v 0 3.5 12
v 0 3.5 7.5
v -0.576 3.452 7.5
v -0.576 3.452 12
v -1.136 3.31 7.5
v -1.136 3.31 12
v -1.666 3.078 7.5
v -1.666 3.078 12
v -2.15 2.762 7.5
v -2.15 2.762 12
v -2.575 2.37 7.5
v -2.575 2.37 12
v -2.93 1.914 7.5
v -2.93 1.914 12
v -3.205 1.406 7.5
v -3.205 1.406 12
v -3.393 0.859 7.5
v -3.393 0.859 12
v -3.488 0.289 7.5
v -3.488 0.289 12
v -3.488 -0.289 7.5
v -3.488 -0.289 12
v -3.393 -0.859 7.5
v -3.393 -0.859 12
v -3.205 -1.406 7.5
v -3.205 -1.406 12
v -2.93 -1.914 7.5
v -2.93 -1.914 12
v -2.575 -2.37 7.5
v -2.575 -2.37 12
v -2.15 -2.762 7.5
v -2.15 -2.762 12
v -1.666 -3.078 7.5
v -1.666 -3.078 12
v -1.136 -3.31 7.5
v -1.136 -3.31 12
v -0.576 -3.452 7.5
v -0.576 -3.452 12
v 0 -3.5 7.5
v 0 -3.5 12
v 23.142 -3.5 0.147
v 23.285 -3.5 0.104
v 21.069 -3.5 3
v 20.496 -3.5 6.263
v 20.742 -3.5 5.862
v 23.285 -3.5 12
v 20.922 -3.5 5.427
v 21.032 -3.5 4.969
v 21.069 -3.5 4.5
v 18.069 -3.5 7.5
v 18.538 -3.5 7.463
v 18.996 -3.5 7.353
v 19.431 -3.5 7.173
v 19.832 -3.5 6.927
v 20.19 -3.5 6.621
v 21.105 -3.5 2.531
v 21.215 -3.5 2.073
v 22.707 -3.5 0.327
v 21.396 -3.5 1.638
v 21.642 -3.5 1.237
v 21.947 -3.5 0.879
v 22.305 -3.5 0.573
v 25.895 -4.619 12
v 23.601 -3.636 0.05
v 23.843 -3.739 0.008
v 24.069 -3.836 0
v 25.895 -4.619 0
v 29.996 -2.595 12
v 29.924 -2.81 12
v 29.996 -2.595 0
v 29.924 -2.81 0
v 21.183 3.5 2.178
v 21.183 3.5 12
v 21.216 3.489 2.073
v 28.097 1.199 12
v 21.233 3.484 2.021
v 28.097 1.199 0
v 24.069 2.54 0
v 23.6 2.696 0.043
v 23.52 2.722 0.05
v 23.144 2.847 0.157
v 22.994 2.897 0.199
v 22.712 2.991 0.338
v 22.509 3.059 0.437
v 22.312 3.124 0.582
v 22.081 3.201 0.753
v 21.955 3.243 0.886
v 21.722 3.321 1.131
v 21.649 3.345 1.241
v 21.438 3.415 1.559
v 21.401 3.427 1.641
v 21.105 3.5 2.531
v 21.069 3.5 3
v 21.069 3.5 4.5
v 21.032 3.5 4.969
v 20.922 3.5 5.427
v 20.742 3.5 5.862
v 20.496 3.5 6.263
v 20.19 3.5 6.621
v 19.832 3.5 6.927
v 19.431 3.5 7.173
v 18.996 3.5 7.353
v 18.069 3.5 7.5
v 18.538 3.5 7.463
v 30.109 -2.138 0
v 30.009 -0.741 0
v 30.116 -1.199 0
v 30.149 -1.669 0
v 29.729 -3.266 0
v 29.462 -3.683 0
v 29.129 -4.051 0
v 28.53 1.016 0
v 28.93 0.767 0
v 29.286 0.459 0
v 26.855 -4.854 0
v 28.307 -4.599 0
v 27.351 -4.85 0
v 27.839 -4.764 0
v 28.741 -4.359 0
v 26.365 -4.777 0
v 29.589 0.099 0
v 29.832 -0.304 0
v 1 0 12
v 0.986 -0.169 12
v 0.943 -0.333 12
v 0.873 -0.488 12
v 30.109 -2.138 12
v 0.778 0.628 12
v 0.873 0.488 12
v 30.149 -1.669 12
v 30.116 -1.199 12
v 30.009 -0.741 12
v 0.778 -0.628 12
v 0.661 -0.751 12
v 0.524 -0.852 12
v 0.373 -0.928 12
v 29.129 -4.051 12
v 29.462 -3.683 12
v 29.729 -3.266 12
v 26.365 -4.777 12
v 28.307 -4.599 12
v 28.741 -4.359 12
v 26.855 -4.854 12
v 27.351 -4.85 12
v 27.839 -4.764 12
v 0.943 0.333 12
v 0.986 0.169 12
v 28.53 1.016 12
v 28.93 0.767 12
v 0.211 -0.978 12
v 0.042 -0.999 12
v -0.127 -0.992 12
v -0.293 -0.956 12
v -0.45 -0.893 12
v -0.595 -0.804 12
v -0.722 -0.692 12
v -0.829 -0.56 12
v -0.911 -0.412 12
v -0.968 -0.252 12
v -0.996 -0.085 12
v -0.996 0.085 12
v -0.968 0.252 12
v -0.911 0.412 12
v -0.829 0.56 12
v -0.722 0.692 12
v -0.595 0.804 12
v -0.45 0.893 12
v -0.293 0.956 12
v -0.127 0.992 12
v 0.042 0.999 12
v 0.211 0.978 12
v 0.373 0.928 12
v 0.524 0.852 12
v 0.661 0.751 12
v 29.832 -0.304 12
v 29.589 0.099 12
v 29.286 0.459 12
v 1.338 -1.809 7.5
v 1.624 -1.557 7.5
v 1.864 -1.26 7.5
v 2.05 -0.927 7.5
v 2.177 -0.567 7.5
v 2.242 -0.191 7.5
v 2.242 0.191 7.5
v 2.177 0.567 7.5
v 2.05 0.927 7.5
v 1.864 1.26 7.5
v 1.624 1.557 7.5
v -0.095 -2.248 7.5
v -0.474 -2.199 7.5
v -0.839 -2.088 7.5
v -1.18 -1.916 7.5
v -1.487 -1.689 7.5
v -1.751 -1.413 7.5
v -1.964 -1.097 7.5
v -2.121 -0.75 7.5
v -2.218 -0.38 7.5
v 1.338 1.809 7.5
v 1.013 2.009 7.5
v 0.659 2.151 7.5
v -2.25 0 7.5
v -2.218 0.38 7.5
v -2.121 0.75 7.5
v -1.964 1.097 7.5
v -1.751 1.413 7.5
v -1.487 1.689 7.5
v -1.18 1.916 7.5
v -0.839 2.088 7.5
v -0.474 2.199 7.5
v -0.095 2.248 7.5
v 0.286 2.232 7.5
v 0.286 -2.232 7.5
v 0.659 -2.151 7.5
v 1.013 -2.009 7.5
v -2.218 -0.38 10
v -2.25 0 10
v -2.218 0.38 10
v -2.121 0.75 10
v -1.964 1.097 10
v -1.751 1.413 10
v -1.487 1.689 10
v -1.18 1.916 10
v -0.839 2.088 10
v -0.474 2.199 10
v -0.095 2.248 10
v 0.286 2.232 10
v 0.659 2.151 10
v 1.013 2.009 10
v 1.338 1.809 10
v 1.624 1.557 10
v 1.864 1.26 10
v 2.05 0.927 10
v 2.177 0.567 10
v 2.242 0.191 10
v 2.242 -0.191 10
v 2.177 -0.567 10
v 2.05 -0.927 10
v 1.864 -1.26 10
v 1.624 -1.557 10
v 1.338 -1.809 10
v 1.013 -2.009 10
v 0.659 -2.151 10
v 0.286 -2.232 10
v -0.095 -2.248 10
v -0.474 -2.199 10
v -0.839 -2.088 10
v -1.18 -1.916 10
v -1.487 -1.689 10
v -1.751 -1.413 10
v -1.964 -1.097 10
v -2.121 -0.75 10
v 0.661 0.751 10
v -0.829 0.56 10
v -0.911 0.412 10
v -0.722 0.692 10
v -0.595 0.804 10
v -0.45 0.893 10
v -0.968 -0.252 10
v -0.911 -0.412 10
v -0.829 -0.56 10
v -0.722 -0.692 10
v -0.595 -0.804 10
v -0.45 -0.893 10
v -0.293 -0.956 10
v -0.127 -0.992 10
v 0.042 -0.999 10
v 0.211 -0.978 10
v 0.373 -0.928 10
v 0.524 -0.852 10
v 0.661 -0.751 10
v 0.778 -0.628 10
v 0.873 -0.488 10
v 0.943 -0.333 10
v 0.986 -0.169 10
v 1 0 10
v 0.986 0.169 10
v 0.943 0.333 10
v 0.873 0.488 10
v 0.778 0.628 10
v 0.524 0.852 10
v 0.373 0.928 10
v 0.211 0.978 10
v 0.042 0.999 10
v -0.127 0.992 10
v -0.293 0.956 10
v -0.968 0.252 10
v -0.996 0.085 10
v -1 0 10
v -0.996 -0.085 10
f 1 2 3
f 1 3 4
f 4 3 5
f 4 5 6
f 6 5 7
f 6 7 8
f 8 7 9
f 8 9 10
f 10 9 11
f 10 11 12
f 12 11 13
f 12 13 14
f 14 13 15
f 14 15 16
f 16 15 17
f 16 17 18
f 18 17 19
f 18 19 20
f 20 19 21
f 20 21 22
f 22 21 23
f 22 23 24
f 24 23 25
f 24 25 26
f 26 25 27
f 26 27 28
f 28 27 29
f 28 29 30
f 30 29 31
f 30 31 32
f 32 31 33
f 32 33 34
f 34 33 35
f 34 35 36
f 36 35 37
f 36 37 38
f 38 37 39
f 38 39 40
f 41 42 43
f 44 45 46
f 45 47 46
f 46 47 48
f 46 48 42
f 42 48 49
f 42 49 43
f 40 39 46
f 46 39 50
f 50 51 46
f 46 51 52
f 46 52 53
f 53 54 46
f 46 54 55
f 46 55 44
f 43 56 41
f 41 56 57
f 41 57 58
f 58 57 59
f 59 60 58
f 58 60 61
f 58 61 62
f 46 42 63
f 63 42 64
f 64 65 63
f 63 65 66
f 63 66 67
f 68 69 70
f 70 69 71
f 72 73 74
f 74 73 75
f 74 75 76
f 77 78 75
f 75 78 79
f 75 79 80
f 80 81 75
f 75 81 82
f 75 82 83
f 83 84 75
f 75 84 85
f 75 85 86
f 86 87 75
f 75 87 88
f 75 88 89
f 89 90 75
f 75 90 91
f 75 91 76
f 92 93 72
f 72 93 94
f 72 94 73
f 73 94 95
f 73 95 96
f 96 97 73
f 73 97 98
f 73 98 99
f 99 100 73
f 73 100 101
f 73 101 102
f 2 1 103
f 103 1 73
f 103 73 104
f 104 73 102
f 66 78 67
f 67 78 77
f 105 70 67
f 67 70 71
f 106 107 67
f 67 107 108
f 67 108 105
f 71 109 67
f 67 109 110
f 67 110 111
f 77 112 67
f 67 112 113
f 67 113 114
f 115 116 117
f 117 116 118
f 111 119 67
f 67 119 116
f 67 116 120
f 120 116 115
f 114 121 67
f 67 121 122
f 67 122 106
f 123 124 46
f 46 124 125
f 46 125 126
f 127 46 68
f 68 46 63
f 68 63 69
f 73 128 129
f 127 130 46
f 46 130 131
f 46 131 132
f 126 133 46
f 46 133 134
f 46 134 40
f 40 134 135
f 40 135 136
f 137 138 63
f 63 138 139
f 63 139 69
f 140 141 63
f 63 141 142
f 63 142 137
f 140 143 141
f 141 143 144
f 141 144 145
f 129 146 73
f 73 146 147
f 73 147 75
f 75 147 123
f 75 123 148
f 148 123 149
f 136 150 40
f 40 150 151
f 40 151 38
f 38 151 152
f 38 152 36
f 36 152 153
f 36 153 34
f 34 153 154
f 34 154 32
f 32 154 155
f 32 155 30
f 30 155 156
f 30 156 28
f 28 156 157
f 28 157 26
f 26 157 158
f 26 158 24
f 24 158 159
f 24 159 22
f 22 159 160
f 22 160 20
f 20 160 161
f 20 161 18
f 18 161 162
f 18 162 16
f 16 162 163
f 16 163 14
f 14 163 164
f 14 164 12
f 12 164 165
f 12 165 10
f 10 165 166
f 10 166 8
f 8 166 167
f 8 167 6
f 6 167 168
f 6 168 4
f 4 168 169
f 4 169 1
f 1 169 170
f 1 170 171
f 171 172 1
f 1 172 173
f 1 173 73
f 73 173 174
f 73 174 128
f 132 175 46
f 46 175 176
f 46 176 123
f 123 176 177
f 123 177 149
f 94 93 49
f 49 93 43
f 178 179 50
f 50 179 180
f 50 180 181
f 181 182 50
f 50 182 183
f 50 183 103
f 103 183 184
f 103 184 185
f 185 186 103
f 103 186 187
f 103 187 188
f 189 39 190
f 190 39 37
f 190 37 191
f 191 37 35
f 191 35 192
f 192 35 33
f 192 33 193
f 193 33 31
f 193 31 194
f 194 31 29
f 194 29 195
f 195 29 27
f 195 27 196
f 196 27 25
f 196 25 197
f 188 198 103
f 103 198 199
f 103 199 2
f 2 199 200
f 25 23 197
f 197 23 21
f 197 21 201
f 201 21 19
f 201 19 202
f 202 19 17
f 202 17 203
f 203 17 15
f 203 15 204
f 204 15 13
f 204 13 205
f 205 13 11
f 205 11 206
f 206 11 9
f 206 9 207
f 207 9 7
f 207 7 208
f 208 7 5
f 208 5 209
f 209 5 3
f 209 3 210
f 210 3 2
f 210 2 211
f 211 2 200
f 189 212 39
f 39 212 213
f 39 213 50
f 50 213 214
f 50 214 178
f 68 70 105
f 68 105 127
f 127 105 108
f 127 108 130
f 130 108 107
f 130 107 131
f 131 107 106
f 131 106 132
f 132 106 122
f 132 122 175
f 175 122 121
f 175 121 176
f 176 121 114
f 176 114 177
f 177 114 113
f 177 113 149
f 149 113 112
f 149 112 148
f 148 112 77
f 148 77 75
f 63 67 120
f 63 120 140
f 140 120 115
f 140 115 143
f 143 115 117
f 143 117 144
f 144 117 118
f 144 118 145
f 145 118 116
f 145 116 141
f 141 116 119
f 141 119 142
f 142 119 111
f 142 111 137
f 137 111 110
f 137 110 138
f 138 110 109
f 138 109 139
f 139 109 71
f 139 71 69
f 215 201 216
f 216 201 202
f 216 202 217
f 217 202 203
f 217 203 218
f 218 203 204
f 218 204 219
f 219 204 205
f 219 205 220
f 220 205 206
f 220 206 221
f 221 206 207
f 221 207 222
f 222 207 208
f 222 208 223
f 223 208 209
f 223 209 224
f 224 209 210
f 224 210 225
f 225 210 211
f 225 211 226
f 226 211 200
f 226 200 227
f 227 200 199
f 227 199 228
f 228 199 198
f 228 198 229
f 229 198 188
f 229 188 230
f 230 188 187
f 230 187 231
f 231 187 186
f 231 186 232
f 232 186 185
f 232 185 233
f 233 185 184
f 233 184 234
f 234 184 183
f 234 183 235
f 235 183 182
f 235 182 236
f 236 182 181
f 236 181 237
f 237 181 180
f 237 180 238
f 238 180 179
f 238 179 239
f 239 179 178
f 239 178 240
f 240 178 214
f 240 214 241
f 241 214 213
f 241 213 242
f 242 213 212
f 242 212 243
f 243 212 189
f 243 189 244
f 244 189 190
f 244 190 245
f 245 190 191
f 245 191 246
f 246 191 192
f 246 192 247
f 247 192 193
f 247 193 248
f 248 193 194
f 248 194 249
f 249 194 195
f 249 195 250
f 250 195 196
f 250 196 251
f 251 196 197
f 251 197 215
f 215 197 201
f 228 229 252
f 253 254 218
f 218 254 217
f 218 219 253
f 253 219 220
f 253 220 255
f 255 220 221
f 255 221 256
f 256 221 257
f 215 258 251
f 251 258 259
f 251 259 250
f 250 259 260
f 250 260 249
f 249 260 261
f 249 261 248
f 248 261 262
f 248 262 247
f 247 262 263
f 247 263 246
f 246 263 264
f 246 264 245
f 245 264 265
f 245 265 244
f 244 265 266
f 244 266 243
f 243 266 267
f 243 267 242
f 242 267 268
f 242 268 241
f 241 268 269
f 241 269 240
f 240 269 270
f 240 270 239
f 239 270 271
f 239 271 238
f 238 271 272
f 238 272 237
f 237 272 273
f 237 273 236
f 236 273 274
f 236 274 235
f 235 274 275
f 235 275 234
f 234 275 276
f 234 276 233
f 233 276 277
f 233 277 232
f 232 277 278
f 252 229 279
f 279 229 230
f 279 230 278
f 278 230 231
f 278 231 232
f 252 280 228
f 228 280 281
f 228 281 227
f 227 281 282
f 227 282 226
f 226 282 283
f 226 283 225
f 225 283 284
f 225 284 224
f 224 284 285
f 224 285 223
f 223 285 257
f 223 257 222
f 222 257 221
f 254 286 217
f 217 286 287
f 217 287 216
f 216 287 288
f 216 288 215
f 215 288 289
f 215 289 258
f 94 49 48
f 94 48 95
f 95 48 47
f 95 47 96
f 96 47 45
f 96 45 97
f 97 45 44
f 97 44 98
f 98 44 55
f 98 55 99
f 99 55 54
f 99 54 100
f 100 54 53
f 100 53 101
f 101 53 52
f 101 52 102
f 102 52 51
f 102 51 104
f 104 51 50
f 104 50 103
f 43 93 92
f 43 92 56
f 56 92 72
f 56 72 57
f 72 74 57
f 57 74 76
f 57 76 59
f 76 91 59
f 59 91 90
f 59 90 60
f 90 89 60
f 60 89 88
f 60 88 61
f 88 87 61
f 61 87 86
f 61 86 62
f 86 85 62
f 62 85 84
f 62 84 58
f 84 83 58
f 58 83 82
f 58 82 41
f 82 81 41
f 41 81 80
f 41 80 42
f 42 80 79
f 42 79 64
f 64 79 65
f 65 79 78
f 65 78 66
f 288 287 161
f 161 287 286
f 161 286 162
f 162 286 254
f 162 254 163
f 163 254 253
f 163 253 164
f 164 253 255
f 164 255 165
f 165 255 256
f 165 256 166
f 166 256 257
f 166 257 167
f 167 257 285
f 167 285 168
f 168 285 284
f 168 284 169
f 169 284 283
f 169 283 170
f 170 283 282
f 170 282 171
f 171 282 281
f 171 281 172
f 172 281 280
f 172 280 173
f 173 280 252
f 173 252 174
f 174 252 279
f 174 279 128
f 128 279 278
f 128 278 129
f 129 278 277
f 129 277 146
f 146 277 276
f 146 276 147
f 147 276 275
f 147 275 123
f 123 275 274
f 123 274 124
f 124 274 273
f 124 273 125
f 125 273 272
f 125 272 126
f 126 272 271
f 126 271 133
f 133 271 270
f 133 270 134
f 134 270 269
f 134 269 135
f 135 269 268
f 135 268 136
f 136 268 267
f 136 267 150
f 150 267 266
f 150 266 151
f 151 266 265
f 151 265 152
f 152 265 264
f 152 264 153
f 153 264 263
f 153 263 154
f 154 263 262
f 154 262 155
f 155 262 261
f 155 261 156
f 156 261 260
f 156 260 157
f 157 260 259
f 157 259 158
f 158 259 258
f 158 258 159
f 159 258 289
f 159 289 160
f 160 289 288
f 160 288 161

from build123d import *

# Parameters (mm, degrees)
RESSALTO_EXTRUS_O1_DEPTH = 12
ESBO_O2_W                = 27.357600802
ESBO_O2_H                = 15.919060402
CORTE_EXTRUS_O1_DEPTH    = 7.5
FILETE1_R                = 3
ESBO_O3_R                = 2.25
CORTE_EXTRUS_O2_DEPTH    = 2.5
FILETE2_R                = 3
ESBO_O4_R                = 1
CORTE_EXTRUS_O3_DEPTH    = 33.811931028


with BuildPart() as part:
    # Esboço1 → Ressalto-extrusão1 (new body)
    with BuildSketch(Plane.XY):
        with BuildLine():
            Line((21.183373259, 3.5), (0, 3.5))
            ThreePointArc((0, 3.5), (-3.5, 0), (0, -3.5))
            Line((0, -3.5), (23.285443563, -3.5))
            Line((23.285443563, -3.5), (28.893826204, -5.90573293))
            Line((28.893826204, -5.90573293), (30.943148627, 0.251790361))
            Line((30.943148627, 0.251790361), (21.183373259, 3.5))
        make_face()
    extrude(amount=RESSALTO_EXTRUS_O1_DEPTH)

    # Esboço2 → Corte-extrusão1 (cut)
    with BuildSketch(Plane(origin=(0, 0, 0), x_dir=(-1, 0, 0), z_dir=(0, 0, -1))):
        with Locations((-7.389764087, -0.137286393)):
            Rectangle(ESBO_O2_W, ESBO_O2_H)
    extrude(amount=-CORTE_EXTRUS_O1_DEPTH, mode=Mode.SUBTRACT)

    # Filete1
    filete1_edges = [part.edges().sort_by_distance(p)[0] for p in [
        (30.943148627, 0.251790361, 6),
        (28.893826204, -5.90573293, 6),
    ]]
    fillet(filete1_edges, radius=FILETE1_R)

    # Esboço3 → Corte-extrusão2 (cut)
    with BuildSketch(Plane(origin=(0, 0, 7.5), x_dir=(-1, 0, 0), z_dir=(0, 0, -1))):
        Circle(ESBO_O3_R)
    extrude(amount=-CORTE_EXTRUS_O2_DEPTH, mode=Mode.SUBTRACT)

    # Filete2
    filete2_edges = [part.edges().sort_by_distance(p)[0] for p in [
        (21.068564488, 0, 7.5),
        (21.068564488, 0, 0),
    ]]
    fillet(filete2_edges, radius=FILETE2_R)

    # Esboço4 → Corte-extrusão3 (cut, through all)
    with BuildSketch(Plane.XY.offset(12)):
        Circle(ESBO_O4_R)
    extrude(amount=-CORTE_EXTRUS_O3_DEPTH, mode=Mode.SUBTRACT)


solid = part.part
